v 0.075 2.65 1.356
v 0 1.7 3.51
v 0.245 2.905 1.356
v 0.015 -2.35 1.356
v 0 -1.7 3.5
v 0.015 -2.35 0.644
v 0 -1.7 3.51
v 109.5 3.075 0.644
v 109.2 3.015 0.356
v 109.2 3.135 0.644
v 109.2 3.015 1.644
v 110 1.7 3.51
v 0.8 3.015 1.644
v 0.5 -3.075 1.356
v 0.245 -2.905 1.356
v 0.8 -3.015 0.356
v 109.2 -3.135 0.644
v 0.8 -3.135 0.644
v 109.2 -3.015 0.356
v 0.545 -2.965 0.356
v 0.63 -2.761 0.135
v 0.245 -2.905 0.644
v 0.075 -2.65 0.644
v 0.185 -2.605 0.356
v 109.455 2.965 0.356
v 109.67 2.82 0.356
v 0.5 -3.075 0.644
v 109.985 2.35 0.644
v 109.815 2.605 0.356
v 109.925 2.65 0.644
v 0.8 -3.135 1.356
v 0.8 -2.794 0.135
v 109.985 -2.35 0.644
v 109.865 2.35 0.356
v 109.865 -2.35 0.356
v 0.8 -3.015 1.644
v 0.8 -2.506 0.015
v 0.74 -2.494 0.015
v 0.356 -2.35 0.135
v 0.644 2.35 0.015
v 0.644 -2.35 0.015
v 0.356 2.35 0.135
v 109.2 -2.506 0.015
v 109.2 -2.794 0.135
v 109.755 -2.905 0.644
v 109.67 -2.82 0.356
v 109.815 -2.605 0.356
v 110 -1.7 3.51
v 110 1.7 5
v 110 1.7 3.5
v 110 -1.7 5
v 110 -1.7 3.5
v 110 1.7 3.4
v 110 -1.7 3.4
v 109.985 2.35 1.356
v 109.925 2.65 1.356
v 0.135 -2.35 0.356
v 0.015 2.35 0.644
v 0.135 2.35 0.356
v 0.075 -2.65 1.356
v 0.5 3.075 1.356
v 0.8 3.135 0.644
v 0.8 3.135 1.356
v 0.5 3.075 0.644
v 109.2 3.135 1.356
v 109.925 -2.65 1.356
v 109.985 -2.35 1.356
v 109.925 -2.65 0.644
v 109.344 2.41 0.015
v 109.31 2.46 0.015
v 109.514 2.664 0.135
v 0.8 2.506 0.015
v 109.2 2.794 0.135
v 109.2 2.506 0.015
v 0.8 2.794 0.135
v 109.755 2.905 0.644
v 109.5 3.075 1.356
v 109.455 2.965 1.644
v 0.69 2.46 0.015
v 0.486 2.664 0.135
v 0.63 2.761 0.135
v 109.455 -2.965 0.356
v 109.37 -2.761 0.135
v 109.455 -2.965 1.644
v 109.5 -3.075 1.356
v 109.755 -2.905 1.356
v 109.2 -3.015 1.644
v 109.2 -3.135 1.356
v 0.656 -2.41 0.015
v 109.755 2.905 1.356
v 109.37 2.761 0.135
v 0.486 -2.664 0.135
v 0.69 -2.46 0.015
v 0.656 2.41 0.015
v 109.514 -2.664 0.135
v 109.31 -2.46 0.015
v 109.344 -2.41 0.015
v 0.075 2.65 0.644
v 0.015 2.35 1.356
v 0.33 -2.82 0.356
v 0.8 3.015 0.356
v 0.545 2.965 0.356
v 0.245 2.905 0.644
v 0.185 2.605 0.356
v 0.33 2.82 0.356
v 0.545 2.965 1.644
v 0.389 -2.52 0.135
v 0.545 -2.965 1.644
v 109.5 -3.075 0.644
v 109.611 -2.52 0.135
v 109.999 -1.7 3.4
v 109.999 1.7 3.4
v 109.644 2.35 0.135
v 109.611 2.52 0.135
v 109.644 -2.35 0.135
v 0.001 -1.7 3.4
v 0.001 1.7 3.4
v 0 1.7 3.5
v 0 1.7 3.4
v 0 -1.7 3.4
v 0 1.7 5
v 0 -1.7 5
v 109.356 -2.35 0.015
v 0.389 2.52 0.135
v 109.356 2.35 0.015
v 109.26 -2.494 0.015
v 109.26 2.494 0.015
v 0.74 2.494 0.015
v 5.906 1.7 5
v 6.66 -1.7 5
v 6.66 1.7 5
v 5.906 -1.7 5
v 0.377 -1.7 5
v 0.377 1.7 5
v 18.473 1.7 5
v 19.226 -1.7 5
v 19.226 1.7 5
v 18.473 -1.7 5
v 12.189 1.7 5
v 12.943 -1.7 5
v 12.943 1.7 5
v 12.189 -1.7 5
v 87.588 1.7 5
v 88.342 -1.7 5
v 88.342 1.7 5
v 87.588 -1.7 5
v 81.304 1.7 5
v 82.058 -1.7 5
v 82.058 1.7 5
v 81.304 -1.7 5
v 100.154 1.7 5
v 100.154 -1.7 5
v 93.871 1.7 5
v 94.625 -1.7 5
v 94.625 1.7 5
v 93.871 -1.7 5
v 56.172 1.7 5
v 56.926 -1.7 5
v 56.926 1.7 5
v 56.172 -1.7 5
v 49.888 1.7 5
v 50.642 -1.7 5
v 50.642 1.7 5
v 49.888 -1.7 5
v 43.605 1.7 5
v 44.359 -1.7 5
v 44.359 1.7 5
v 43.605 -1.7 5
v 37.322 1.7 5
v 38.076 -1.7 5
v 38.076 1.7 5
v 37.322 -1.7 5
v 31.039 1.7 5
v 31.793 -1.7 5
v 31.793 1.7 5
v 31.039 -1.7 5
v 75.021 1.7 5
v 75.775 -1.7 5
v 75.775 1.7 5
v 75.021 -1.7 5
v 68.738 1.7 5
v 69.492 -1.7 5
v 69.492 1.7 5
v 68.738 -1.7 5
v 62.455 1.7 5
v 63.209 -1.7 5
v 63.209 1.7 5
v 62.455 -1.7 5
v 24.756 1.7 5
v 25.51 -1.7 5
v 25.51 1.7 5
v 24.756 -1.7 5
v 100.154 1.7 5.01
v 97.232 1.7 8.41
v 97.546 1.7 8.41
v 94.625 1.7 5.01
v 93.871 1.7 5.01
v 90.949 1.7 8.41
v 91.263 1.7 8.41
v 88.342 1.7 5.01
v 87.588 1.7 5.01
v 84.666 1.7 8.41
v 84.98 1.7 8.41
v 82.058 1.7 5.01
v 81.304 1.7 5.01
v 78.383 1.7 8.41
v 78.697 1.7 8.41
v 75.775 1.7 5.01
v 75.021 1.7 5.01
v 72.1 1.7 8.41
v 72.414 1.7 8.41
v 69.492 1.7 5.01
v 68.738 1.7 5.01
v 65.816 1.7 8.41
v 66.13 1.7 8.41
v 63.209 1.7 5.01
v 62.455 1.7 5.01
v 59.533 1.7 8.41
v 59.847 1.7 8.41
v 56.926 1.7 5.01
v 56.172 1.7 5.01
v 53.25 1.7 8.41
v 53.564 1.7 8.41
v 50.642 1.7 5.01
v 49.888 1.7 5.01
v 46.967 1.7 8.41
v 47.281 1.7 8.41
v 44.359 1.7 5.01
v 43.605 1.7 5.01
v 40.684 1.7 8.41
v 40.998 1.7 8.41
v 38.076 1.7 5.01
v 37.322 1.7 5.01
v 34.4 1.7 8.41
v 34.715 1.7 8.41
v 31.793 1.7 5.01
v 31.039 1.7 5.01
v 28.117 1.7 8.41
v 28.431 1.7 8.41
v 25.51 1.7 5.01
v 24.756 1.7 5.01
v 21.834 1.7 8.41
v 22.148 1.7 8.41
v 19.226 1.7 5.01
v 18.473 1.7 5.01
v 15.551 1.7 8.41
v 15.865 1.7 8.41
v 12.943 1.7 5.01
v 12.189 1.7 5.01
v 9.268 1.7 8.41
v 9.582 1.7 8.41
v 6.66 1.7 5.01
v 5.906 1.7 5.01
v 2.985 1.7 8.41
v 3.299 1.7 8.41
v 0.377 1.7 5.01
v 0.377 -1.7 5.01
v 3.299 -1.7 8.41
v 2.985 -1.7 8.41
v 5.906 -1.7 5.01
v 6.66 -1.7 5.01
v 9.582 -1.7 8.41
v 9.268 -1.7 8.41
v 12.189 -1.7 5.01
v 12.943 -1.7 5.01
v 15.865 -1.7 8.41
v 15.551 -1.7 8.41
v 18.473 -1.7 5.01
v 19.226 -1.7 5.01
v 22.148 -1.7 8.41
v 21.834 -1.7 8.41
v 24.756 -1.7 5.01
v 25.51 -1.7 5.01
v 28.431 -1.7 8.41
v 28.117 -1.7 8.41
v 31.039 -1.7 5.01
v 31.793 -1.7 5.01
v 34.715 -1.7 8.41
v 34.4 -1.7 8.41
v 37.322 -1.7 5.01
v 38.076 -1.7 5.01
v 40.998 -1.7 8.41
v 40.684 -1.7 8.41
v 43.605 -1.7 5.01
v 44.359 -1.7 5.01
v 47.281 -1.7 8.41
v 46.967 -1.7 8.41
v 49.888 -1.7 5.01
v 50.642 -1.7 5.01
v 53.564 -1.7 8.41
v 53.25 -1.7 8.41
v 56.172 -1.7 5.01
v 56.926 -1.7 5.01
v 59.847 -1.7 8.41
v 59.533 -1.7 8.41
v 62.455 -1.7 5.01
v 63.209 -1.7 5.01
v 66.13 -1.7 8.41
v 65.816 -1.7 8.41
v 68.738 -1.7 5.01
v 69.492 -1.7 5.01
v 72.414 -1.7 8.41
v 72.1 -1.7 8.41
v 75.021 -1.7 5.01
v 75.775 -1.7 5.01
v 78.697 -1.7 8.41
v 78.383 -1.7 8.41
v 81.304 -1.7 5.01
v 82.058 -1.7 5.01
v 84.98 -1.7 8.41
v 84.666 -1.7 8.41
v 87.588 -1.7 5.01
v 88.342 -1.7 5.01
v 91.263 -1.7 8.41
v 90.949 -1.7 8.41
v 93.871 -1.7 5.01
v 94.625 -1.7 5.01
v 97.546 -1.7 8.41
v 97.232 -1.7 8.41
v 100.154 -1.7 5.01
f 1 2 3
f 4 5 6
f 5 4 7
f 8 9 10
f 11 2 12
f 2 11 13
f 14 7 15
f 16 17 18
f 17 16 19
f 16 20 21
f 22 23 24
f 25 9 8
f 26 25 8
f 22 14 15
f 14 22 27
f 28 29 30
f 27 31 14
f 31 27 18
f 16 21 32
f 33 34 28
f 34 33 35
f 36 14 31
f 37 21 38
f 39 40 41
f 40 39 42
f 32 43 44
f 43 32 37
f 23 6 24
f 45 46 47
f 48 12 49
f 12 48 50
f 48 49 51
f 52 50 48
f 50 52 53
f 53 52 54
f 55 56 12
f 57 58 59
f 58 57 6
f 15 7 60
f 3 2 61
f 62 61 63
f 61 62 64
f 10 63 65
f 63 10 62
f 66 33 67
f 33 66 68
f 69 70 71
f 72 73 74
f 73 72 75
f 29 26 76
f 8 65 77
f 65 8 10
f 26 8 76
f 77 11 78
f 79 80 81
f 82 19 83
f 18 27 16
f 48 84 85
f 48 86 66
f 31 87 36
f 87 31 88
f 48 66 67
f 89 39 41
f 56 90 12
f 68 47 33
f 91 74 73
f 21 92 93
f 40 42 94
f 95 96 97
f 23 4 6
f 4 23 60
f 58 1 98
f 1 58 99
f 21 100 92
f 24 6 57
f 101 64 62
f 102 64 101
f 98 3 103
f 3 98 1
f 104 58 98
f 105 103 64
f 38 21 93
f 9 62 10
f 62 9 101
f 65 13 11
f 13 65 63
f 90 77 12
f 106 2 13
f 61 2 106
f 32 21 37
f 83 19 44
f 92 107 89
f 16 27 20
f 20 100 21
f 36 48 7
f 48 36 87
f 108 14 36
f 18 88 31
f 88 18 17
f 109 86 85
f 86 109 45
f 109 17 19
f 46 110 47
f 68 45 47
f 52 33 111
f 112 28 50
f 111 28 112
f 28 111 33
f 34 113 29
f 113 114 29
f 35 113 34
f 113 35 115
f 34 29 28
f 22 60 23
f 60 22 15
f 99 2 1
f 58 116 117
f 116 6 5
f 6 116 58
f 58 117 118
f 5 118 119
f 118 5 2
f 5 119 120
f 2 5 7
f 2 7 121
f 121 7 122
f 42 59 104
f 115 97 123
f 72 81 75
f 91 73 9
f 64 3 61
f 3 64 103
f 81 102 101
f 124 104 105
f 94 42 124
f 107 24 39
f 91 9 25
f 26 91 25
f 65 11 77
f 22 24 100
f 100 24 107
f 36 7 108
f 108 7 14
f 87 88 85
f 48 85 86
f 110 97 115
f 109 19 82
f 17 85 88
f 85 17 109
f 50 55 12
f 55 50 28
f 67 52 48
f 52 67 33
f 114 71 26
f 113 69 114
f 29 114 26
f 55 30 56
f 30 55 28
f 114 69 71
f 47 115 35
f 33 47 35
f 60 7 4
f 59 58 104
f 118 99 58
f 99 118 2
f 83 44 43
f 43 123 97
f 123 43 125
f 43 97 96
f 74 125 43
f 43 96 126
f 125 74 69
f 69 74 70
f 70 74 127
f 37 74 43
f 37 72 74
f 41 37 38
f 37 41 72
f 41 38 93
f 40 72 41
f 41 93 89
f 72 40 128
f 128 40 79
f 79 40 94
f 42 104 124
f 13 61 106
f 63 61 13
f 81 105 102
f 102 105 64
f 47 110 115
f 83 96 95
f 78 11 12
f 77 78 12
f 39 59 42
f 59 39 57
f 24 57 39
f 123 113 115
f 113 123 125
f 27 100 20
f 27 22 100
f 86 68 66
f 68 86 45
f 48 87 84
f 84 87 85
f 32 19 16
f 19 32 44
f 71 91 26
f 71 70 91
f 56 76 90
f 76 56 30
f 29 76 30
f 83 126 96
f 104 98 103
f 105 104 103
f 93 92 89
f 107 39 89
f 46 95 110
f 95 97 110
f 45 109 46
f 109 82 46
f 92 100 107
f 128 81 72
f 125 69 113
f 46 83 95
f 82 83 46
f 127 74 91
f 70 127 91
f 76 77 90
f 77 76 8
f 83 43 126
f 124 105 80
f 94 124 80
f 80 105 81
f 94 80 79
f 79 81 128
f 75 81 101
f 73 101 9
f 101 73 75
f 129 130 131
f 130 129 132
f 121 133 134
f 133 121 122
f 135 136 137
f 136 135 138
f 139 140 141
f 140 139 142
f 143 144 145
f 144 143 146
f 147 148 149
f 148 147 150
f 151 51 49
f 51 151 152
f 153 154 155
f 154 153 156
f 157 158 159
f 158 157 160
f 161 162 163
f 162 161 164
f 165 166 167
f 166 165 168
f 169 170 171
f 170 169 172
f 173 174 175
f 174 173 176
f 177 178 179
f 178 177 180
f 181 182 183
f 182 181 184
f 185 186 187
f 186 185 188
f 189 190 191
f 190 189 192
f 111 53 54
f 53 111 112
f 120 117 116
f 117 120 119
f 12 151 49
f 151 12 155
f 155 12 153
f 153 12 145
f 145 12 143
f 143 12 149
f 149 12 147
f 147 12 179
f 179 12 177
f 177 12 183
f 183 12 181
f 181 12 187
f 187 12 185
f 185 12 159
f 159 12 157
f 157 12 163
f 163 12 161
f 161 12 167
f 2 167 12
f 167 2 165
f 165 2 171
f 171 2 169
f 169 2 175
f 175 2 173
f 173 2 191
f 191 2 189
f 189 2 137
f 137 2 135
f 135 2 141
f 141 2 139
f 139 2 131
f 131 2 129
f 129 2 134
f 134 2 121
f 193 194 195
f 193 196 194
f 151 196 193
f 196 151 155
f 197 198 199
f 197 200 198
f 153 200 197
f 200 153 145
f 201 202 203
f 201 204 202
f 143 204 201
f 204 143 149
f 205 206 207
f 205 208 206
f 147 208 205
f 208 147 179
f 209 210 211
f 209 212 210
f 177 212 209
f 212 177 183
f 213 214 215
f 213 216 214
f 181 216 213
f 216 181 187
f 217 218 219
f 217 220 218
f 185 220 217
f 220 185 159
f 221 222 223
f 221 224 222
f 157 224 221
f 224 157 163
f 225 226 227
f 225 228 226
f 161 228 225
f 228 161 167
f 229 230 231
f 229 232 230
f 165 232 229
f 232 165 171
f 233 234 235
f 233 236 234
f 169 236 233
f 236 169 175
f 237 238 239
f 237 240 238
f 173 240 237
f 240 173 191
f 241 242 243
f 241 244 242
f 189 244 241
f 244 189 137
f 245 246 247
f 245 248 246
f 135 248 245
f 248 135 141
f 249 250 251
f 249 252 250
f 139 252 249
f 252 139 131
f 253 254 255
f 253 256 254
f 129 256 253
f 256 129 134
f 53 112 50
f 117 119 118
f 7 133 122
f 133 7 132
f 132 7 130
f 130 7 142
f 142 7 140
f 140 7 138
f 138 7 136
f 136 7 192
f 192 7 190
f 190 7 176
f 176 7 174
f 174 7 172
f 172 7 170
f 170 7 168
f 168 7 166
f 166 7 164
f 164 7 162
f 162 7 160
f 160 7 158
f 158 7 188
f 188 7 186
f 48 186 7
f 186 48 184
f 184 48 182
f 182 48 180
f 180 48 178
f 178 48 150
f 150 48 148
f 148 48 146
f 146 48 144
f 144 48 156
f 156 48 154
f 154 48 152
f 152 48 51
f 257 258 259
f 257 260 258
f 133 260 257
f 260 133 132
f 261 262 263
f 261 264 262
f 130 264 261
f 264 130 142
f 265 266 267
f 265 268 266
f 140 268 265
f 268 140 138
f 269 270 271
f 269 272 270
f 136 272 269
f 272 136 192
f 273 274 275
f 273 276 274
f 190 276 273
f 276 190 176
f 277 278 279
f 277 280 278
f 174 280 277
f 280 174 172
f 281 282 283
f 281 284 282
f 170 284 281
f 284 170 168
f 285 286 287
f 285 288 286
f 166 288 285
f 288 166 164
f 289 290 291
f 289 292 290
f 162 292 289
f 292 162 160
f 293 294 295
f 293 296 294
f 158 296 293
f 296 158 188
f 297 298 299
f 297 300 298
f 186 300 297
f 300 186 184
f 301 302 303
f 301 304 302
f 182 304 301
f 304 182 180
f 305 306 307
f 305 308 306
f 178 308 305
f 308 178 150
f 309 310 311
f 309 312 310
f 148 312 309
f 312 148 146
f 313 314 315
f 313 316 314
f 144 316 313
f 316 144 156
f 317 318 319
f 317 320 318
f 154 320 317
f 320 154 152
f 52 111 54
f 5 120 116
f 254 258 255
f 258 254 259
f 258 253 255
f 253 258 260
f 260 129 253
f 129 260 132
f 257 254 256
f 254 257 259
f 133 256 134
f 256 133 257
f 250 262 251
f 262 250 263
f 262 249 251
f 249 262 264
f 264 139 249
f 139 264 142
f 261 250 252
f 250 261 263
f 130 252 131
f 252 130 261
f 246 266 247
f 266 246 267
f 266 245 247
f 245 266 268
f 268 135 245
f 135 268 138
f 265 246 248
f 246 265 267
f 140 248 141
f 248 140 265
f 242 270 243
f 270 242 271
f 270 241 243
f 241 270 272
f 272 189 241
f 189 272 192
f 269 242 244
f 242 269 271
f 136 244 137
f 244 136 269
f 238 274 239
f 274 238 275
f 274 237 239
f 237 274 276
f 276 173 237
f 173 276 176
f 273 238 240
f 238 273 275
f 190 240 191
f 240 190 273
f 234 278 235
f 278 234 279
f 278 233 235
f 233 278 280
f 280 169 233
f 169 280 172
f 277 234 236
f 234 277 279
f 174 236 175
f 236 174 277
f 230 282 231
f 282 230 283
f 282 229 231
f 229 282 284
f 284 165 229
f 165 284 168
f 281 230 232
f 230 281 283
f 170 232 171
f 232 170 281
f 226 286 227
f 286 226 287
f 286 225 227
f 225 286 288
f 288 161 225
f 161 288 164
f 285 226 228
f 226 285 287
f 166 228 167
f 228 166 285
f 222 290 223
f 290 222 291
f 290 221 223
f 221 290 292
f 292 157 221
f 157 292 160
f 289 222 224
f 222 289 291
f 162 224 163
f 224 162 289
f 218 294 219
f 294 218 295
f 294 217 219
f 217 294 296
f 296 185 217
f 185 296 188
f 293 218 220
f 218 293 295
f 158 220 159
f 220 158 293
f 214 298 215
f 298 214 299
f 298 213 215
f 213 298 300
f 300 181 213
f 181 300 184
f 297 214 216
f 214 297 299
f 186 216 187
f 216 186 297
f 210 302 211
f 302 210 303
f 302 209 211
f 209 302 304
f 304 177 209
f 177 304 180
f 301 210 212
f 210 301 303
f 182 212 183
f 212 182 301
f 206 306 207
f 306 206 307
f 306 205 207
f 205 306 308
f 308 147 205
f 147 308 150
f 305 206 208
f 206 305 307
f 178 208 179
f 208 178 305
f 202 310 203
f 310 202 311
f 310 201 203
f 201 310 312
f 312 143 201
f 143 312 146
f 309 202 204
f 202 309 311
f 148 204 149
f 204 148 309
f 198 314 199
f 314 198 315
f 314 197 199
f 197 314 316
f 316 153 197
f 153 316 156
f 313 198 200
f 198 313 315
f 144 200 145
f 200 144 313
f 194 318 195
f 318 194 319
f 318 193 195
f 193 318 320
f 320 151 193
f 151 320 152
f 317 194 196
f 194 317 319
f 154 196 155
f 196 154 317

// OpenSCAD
// Crémaillère (rack) avec profil évasé - La Boîte à Coucou
//
// Construction 100% sans rotation :
//   X = longueur (0 -> rack_length)
//   Y = largeur  (centré sur 0 : -head_w/2 -> +head_w/2)
//   Z = hauteur  (0 = bas)
//
// Le corps est construit par hull() de sphères/cylindres directement
// dans le bon repère. Les dents idem.

gear_module  = 2;
rack_length  = 110;

head_w  =  6.3;
head_h  =  2.0;
head_r  =  0.8;
taper_h =  1.5;
stem_w  =  3.4;
stem_h  =  1.5;

tooth_pitch = gear_module * PI;
num_teeth   = floor(rack_length / tooth_pitch);
tooth_h     = gear_module * 1.2 + 1;  // +1mm par rapport au calcul théorique

total_body_h = head_h + taper_h + stem_h;

// =====================================================
// Corps - construit par hull de sphères
// 4 coins de la base arrondie × 2 extrémités X = 8 sphères
// + trapèze via hull entre base large et tige
// =====================================================
module rack_body() {
    union() {
        // Base arrondie + trapèze en un seul hull :
        // coins arrondis en bas + arêtes de la tige en haut
        hull() {
            // 8 sphères pour les coins arrondis de la base
            for (xe = [head_r, rack_length - head_r])
            for (ye = [-(head_w/2 - head_r), (head_w/2 - head_r)])
            for (ze = [head_r, head_h - head_r])
                translate([xe, ye, ze])
                sphere(r = head_r, $fn = 16);

            // 4 coins de la tige en haut (petit cube mince)
            translate([0, -stem_w/2, head_h + taper_h])
            cube([rack_length, stem_w, 0.01]);
        }

        // Tige
        translate([0, -stem_w/2, head_h + taper_h - 0.1])
        cube([rack_length, stem_w, stem_h + 0.1]);
    }
}

// =====================================================
// Une dent - trapèze dans le plan XZ, extrudé en Y
// =====================================================
module rack_tooth() {
    top_w  = tooth_pitch * 0.05;  // sommet quasi-pointu
    base_w = tooth_pitch * 0.88;  // base large - les dents se touchent presque

    // hull de 4 arêtes (segments) pour un trapèze propre en 3D
    hull() {
        // base de la dent
        translate([-base_w/2, -stem_w/2, 0]) cube([base_w, stem_w, 0.01]);
        // sommet de la dent
        translate([-top_w/2,  -stem_w/2, tooth_h]) cube([top_w,  stem_w, 0.01]);
    }
}

// =====================================================
// Assemblage
// =====================================================
union() {
    rack_body();

    for (i = [0 : num_teeth - 2]) {
        translate([
            tooth_pitch / 2 + i * tooth_pitch,
            0,
            total_body_h
        ])
        rack_tooth();
    }
}
